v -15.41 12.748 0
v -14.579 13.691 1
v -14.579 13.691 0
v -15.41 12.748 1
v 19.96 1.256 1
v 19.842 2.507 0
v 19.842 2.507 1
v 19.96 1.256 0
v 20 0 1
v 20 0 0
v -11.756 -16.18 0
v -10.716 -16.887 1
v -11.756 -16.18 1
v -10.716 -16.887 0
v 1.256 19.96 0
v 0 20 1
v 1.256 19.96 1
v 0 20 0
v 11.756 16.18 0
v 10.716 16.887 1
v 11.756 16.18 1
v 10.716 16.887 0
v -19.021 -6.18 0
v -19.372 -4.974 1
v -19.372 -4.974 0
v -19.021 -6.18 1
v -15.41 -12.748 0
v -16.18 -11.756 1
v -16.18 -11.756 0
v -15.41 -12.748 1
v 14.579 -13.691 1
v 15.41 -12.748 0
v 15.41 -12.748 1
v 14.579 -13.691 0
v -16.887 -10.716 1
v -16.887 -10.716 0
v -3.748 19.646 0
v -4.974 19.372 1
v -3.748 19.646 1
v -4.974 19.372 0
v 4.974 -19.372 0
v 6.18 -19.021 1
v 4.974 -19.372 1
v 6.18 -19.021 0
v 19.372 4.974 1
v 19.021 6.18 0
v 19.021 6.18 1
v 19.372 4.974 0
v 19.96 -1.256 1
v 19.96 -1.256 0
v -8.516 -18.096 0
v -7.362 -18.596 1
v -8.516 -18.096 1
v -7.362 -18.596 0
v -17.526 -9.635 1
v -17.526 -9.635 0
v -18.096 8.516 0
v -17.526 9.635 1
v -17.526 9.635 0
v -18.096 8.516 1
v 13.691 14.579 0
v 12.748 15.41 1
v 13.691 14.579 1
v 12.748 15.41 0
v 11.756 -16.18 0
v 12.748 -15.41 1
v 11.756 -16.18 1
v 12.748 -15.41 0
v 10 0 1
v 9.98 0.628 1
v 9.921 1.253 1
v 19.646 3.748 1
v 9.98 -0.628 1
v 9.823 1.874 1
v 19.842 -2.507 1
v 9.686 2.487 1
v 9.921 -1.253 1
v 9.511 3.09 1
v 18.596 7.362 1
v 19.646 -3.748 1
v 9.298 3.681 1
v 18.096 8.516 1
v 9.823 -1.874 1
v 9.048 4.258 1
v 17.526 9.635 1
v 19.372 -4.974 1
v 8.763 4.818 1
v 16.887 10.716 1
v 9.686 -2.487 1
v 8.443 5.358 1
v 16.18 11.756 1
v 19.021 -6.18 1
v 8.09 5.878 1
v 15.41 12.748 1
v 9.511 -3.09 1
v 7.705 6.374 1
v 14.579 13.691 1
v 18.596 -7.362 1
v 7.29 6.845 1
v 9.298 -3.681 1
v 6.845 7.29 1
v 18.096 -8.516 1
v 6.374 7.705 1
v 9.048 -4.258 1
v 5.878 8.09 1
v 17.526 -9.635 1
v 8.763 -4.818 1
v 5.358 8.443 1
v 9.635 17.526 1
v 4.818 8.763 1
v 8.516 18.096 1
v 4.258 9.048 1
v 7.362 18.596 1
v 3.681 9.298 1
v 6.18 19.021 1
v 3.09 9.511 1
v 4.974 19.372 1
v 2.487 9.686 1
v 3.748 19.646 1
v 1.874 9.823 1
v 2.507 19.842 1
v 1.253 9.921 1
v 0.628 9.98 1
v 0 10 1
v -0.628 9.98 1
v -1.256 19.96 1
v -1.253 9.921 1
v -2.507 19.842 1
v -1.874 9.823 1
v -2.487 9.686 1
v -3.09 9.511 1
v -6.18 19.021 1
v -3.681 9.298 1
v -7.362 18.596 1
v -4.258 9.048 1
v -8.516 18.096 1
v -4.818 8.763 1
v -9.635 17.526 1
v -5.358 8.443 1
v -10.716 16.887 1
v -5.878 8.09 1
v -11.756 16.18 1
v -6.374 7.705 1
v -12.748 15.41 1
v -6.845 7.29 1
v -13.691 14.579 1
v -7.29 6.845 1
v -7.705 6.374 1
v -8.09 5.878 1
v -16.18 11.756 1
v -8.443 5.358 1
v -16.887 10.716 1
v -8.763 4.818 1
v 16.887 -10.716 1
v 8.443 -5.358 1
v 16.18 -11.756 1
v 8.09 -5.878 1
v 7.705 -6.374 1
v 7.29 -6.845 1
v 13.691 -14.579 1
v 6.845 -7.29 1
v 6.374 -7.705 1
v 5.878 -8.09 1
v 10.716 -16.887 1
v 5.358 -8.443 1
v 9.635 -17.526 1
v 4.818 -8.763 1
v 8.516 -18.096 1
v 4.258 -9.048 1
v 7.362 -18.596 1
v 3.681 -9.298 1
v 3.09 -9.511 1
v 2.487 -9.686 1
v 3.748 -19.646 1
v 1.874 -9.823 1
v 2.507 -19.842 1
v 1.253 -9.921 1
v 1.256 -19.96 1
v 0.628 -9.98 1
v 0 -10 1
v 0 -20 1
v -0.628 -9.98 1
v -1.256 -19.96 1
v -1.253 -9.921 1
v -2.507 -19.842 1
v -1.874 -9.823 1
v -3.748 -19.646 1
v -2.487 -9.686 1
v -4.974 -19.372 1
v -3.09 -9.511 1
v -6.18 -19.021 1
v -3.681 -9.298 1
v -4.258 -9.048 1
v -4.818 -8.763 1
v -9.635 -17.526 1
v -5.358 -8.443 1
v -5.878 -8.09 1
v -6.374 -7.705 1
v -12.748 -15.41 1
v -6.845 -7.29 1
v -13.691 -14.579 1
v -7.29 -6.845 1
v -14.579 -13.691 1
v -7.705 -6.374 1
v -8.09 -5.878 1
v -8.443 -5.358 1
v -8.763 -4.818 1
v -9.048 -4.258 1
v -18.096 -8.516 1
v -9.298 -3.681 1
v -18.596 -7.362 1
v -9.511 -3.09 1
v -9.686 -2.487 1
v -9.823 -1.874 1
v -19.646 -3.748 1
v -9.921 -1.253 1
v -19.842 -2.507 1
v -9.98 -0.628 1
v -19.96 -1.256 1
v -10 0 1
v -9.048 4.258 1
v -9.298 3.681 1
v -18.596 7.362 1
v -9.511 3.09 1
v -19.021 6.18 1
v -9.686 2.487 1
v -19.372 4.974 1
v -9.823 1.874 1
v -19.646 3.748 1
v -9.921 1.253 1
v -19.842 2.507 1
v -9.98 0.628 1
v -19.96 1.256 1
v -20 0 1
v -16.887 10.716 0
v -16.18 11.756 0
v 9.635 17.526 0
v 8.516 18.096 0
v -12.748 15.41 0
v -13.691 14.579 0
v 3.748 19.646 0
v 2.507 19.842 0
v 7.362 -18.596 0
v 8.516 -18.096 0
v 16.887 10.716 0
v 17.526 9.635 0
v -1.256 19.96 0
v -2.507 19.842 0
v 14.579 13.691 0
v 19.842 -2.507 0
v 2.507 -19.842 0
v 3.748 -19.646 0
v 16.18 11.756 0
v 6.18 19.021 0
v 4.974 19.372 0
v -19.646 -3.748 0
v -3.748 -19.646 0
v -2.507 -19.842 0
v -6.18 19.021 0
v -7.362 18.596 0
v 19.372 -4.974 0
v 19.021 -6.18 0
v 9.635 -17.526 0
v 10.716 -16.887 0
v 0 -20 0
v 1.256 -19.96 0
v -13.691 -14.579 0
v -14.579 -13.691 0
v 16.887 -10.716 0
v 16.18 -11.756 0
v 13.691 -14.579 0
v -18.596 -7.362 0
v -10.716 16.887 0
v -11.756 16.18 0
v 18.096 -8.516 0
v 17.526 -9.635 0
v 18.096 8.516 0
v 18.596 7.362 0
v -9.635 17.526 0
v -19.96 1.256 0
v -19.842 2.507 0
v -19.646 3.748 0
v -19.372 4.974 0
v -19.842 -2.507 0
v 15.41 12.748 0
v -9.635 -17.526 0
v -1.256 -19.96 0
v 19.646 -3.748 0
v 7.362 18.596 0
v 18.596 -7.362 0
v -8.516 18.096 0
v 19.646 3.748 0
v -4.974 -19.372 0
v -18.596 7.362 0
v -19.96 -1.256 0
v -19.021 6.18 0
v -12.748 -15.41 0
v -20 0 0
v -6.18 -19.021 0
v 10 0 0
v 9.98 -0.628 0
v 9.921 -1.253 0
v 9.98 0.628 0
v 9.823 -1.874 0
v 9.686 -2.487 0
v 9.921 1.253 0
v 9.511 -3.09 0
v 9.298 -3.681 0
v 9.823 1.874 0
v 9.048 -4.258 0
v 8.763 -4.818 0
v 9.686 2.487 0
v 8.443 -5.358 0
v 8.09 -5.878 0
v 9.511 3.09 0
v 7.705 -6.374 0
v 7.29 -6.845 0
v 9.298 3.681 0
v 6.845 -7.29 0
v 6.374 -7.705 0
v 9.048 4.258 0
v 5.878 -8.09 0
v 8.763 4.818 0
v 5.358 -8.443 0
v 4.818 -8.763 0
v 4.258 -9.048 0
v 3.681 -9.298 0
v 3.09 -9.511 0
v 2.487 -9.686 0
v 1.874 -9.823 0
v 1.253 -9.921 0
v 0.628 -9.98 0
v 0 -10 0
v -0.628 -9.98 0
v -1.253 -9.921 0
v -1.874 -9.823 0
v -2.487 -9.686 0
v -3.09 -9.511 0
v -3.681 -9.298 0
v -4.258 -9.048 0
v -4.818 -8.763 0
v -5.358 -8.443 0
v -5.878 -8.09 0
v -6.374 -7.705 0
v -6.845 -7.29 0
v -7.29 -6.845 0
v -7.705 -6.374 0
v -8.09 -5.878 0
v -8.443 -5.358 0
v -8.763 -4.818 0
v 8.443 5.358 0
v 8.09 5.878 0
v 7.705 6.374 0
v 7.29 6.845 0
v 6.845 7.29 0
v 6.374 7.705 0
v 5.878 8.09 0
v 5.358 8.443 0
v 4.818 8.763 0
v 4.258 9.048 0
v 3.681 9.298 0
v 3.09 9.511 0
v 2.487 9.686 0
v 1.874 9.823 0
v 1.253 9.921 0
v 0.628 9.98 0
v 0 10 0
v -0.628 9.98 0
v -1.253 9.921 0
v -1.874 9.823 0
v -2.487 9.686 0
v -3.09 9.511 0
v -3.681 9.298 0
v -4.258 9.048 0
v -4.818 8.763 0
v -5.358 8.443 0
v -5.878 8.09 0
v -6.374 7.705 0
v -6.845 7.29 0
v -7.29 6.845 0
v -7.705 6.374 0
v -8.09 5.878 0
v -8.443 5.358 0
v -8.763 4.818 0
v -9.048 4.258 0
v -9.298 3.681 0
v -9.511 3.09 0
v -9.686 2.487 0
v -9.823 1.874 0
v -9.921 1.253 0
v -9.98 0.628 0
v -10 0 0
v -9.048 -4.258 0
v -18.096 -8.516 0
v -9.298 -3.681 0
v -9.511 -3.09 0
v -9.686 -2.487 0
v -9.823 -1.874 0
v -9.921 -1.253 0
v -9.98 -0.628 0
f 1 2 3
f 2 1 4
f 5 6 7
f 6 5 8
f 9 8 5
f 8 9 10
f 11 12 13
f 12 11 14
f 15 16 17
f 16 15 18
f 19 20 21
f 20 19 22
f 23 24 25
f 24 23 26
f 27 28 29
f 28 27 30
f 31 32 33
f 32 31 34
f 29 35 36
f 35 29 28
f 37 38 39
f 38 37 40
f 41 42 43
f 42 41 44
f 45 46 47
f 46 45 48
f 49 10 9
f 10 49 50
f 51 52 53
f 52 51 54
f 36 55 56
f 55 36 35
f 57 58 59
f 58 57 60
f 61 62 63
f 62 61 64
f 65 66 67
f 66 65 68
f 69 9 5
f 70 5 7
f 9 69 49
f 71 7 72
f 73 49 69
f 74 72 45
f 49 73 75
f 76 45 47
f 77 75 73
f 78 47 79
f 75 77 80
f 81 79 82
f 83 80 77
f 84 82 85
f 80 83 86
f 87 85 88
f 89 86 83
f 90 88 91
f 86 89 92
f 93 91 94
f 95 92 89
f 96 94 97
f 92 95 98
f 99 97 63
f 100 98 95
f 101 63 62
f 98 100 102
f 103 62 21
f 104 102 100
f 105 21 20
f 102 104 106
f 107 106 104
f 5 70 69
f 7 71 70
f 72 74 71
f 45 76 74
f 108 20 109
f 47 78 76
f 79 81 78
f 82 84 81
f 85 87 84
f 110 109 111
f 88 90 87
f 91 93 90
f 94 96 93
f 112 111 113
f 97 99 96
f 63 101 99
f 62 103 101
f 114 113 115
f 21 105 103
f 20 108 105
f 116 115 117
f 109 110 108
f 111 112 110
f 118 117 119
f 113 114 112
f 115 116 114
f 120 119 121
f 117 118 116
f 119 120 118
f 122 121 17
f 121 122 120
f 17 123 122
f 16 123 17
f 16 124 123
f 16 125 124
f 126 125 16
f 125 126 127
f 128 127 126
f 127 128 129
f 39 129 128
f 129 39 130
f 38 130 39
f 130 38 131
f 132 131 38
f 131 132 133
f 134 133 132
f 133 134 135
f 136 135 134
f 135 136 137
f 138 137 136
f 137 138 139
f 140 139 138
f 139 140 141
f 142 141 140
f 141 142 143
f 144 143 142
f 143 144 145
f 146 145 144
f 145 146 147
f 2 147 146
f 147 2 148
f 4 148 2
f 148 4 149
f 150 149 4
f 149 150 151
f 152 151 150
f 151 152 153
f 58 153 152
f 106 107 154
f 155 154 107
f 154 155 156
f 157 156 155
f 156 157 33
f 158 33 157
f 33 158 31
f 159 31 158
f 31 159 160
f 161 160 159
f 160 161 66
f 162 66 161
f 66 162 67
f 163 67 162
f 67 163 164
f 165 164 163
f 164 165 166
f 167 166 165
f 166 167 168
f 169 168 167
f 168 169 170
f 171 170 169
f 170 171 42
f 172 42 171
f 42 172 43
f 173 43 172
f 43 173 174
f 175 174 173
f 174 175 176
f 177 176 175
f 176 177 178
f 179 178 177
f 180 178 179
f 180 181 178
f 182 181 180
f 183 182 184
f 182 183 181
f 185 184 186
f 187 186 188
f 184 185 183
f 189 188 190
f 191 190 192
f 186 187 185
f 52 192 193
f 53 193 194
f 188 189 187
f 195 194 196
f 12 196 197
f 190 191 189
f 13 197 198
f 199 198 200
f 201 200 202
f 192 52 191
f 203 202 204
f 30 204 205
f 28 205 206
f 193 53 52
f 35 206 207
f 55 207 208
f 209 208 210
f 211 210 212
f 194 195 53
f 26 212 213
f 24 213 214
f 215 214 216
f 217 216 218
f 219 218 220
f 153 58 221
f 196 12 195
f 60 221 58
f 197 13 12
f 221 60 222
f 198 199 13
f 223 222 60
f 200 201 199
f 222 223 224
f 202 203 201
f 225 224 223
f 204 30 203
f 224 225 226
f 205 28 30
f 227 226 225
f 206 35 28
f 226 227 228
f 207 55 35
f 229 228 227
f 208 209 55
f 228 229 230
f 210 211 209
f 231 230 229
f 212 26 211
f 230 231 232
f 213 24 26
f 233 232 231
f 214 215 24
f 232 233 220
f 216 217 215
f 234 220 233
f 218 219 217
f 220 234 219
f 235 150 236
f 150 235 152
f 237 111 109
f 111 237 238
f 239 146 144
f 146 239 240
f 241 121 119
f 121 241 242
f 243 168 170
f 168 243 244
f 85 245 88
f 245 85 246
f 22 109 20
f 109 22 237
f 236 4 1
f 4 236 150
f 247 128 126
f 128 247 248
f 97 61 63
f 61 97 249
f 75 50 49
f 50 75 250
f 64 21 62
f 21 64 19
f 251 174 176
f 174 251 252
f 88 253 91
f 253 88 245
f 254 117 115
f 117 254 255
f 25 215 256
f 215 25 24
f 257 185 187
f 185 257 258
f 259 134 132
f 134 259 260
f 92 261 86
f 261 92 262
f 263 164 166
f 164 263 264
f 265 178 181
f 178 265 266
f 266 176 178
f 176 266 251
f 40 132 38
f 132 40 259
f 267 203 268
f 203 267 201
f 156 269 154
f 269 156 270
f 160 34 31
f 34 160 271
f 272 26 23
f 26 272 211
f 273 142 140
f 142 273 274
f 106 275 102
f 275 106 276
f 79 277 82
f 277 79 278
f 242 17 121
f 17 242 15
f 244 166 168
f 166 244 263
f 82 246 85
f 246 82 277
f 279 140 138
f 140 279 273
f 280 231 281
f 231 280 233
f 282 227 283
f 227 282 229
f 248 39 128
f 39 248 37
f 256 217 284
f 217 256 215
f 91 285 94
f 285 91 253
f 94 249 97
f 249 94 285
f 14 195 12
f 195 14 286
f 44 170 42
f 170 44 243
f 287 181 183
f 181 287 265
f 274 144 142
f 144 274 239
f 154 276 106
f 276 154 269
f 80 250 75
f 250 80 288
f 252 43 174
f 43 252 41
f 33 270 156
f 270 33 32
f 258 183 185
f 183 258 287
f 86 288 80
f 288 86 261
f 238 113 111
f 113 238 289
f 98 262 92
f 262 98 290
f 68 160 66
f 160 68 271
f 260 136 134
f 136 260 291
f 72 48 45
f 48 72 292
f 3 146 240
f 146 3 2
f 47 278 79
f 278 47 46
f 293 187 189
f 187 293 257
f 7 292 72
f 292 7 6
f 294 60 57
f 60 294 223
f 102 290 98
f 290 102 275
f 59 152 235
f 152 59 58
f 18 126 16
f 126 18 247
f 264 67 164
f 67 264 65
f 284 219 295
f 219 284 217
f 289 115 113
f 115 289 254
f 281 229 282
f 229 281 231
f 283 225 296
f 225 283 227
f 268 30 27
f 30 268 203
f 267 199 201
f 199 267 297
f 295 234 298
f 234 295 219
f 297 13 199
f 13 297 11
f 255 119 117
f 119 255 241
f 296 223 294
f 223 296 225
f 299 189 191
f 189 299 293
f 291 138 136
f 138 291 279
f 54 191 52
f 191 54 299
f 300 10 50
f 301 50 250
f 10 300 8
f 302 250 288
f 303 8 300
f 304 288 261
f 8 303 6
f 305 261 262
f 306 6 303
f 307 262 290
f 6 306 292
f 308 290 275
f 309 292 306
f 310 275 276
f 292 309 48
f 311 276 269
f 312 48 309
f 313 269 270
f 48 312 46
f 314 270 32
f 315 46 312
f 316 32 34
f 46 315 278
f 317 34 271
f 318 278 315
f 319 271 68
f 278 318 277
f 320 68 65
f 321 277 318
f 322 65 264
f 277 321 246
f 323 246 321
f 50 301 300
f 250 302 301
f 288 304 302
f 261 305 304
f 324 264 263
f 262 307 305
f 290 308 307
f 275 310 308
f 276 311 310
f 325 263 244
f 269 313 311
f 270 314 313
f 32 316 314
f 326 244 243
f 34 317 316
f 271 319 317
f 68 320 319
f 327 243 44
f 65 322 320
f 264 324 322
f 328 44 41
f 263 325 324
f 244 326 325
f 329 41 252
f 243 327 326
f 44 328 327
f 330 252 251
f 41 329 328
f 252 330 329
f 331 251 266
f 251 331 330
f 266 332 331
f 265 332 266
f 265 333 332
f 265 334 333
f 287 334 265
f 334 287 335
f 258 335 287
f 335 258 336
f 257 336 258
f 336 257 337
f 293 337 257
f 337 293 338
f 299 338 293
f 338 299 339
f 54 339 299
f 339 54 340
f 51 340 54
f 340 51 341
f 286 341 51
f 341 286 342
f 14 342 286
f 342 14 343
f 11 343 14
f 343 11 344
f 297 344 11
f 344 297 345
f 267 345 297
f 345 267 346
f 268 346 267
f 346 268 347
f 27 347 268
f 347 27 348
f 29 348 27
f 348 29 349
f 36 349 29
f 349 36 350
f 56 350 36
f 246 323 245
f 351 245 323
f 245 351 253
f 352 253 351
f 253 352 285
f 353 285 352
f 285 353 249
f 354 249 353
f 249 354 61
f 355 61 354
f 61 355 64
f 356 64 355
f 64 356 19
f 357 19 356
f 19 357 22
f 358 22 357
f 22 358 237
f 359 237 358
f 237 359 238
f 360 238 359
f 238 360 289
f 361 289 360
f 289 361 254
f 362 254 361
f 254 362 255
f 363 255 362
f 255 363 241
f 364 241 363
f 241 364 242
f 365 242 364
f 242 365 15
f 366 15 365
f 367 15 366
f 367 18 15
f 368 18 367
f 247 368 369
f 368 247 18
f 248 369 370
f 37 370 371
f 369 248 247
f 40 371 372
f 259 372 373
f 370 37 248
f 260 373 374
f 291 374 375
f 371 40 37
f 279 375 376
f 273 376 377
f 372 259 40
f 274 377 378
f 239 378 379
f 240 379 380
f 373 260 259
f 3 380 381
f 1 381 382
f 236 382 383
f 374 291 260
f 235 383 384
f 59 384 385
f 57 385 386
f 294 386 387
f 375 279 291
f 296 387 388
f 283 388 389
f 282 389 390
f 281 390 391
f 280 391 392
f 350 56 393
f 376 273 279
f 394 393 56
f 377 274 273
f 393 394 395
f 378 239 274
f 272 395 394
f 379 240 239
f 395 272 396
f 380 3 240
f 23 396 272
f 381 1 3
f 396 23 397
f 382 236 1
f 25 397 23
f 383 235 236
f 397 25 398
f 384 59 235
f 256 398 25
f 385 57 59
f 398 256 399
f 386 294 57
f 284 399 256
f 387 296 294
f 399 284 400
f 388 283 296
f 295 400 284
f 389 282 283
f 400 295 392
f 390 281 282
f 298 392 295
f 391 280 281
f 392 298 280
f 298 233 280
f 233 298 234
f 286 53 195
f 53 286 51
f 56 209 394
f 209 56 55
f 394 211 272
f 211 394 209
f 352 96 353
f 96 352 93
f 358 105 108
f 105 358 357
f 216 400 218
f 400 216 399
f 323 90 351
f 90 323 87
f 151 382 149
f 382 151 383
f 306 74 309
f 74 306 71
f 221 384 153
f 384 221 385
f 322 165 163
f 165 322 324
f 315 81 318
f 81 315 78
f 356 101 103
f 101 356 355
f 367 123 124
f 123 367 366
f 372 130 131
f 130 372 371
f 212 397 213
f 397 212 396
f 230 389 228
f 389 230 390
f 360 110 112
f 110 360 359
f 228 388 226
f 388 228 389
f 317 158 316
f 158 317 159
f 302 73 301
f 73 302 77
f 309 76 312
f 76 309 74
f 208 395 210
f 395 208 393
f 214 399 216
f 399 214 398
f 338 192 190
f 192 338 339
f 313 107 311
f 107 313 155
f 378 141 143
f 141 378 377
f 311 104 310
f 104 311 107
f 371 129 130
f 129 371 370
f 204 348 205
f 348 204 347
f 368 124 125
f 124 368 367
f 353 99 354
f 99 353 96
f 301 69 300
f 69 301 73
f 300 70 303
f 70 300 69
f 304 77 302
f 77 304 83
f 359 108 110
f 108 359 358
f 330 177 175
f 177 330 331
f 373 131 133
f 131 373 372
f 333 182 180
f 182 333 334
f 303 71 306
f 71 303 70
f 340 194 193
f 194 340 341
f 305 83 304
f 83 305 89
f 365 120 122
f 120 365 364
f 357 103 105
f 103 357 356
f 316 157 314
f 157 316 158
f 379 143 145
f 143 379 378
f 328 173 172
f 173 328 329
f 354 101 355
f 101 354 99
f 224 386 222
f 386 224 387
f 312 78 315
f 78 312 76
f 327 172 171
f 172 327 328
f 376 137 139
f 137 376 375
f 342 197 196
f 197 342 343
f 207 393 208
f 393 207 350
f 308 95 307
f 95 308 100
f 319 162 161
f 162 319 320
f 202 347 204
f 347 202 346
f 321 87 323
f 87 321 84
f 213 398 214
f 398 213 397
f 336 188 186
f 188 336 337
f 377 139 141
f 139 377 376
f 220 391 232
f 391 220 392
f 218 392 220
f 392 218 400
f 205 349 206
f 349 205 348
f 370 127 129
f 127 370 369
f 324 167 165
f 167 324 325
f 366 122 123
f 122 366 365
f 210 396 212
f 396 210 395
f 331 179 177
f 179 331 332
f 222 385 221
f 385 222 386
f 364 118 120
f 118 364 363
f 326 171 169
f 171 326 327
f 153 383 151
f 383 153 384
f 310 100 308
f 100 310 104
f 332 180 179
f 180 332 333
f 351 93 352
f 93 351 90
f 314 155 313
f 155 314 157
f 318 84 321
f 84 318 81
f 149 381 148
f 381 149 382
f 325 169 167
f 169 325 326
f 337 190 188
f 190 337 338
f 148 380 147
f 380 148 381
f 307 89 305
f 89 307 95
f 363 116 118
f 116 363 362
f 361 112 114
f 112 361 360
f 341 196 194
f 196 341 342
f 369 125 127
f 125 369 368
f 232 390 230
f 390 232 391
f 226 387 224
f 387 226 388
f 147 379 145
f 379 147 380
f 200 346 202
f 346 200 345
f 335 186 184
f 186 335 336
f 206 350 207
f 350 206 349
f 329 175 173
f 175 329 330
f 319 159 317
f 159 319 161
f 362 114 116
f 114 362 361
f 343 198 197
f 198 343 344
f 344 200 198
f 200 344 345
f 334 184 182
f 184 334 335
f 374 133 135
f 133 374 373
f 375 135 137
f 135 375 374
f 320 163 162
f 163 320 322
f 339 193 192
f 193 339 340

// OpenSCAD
// Spacer Ring Component
// This code generates a flat, ring-shaped component with a smooth surface.

module spacer_ring() {
    difference() {
        // Outer cylinder
        cylinder(h = 1.0, r = 20, $fn = 100); // Reduced thickness to match the original model
        // Inner cylinder (hollow center)
        translate([0, 0, -0.5]) // Slightly lower the inner cylinder to ensure clean subtraction
        cylinder(h = 2.0, r = 10, $fn = 100); // Adjusted height for proper subtraction
    }
}

// Render the spacer ring
spacer_ring();
